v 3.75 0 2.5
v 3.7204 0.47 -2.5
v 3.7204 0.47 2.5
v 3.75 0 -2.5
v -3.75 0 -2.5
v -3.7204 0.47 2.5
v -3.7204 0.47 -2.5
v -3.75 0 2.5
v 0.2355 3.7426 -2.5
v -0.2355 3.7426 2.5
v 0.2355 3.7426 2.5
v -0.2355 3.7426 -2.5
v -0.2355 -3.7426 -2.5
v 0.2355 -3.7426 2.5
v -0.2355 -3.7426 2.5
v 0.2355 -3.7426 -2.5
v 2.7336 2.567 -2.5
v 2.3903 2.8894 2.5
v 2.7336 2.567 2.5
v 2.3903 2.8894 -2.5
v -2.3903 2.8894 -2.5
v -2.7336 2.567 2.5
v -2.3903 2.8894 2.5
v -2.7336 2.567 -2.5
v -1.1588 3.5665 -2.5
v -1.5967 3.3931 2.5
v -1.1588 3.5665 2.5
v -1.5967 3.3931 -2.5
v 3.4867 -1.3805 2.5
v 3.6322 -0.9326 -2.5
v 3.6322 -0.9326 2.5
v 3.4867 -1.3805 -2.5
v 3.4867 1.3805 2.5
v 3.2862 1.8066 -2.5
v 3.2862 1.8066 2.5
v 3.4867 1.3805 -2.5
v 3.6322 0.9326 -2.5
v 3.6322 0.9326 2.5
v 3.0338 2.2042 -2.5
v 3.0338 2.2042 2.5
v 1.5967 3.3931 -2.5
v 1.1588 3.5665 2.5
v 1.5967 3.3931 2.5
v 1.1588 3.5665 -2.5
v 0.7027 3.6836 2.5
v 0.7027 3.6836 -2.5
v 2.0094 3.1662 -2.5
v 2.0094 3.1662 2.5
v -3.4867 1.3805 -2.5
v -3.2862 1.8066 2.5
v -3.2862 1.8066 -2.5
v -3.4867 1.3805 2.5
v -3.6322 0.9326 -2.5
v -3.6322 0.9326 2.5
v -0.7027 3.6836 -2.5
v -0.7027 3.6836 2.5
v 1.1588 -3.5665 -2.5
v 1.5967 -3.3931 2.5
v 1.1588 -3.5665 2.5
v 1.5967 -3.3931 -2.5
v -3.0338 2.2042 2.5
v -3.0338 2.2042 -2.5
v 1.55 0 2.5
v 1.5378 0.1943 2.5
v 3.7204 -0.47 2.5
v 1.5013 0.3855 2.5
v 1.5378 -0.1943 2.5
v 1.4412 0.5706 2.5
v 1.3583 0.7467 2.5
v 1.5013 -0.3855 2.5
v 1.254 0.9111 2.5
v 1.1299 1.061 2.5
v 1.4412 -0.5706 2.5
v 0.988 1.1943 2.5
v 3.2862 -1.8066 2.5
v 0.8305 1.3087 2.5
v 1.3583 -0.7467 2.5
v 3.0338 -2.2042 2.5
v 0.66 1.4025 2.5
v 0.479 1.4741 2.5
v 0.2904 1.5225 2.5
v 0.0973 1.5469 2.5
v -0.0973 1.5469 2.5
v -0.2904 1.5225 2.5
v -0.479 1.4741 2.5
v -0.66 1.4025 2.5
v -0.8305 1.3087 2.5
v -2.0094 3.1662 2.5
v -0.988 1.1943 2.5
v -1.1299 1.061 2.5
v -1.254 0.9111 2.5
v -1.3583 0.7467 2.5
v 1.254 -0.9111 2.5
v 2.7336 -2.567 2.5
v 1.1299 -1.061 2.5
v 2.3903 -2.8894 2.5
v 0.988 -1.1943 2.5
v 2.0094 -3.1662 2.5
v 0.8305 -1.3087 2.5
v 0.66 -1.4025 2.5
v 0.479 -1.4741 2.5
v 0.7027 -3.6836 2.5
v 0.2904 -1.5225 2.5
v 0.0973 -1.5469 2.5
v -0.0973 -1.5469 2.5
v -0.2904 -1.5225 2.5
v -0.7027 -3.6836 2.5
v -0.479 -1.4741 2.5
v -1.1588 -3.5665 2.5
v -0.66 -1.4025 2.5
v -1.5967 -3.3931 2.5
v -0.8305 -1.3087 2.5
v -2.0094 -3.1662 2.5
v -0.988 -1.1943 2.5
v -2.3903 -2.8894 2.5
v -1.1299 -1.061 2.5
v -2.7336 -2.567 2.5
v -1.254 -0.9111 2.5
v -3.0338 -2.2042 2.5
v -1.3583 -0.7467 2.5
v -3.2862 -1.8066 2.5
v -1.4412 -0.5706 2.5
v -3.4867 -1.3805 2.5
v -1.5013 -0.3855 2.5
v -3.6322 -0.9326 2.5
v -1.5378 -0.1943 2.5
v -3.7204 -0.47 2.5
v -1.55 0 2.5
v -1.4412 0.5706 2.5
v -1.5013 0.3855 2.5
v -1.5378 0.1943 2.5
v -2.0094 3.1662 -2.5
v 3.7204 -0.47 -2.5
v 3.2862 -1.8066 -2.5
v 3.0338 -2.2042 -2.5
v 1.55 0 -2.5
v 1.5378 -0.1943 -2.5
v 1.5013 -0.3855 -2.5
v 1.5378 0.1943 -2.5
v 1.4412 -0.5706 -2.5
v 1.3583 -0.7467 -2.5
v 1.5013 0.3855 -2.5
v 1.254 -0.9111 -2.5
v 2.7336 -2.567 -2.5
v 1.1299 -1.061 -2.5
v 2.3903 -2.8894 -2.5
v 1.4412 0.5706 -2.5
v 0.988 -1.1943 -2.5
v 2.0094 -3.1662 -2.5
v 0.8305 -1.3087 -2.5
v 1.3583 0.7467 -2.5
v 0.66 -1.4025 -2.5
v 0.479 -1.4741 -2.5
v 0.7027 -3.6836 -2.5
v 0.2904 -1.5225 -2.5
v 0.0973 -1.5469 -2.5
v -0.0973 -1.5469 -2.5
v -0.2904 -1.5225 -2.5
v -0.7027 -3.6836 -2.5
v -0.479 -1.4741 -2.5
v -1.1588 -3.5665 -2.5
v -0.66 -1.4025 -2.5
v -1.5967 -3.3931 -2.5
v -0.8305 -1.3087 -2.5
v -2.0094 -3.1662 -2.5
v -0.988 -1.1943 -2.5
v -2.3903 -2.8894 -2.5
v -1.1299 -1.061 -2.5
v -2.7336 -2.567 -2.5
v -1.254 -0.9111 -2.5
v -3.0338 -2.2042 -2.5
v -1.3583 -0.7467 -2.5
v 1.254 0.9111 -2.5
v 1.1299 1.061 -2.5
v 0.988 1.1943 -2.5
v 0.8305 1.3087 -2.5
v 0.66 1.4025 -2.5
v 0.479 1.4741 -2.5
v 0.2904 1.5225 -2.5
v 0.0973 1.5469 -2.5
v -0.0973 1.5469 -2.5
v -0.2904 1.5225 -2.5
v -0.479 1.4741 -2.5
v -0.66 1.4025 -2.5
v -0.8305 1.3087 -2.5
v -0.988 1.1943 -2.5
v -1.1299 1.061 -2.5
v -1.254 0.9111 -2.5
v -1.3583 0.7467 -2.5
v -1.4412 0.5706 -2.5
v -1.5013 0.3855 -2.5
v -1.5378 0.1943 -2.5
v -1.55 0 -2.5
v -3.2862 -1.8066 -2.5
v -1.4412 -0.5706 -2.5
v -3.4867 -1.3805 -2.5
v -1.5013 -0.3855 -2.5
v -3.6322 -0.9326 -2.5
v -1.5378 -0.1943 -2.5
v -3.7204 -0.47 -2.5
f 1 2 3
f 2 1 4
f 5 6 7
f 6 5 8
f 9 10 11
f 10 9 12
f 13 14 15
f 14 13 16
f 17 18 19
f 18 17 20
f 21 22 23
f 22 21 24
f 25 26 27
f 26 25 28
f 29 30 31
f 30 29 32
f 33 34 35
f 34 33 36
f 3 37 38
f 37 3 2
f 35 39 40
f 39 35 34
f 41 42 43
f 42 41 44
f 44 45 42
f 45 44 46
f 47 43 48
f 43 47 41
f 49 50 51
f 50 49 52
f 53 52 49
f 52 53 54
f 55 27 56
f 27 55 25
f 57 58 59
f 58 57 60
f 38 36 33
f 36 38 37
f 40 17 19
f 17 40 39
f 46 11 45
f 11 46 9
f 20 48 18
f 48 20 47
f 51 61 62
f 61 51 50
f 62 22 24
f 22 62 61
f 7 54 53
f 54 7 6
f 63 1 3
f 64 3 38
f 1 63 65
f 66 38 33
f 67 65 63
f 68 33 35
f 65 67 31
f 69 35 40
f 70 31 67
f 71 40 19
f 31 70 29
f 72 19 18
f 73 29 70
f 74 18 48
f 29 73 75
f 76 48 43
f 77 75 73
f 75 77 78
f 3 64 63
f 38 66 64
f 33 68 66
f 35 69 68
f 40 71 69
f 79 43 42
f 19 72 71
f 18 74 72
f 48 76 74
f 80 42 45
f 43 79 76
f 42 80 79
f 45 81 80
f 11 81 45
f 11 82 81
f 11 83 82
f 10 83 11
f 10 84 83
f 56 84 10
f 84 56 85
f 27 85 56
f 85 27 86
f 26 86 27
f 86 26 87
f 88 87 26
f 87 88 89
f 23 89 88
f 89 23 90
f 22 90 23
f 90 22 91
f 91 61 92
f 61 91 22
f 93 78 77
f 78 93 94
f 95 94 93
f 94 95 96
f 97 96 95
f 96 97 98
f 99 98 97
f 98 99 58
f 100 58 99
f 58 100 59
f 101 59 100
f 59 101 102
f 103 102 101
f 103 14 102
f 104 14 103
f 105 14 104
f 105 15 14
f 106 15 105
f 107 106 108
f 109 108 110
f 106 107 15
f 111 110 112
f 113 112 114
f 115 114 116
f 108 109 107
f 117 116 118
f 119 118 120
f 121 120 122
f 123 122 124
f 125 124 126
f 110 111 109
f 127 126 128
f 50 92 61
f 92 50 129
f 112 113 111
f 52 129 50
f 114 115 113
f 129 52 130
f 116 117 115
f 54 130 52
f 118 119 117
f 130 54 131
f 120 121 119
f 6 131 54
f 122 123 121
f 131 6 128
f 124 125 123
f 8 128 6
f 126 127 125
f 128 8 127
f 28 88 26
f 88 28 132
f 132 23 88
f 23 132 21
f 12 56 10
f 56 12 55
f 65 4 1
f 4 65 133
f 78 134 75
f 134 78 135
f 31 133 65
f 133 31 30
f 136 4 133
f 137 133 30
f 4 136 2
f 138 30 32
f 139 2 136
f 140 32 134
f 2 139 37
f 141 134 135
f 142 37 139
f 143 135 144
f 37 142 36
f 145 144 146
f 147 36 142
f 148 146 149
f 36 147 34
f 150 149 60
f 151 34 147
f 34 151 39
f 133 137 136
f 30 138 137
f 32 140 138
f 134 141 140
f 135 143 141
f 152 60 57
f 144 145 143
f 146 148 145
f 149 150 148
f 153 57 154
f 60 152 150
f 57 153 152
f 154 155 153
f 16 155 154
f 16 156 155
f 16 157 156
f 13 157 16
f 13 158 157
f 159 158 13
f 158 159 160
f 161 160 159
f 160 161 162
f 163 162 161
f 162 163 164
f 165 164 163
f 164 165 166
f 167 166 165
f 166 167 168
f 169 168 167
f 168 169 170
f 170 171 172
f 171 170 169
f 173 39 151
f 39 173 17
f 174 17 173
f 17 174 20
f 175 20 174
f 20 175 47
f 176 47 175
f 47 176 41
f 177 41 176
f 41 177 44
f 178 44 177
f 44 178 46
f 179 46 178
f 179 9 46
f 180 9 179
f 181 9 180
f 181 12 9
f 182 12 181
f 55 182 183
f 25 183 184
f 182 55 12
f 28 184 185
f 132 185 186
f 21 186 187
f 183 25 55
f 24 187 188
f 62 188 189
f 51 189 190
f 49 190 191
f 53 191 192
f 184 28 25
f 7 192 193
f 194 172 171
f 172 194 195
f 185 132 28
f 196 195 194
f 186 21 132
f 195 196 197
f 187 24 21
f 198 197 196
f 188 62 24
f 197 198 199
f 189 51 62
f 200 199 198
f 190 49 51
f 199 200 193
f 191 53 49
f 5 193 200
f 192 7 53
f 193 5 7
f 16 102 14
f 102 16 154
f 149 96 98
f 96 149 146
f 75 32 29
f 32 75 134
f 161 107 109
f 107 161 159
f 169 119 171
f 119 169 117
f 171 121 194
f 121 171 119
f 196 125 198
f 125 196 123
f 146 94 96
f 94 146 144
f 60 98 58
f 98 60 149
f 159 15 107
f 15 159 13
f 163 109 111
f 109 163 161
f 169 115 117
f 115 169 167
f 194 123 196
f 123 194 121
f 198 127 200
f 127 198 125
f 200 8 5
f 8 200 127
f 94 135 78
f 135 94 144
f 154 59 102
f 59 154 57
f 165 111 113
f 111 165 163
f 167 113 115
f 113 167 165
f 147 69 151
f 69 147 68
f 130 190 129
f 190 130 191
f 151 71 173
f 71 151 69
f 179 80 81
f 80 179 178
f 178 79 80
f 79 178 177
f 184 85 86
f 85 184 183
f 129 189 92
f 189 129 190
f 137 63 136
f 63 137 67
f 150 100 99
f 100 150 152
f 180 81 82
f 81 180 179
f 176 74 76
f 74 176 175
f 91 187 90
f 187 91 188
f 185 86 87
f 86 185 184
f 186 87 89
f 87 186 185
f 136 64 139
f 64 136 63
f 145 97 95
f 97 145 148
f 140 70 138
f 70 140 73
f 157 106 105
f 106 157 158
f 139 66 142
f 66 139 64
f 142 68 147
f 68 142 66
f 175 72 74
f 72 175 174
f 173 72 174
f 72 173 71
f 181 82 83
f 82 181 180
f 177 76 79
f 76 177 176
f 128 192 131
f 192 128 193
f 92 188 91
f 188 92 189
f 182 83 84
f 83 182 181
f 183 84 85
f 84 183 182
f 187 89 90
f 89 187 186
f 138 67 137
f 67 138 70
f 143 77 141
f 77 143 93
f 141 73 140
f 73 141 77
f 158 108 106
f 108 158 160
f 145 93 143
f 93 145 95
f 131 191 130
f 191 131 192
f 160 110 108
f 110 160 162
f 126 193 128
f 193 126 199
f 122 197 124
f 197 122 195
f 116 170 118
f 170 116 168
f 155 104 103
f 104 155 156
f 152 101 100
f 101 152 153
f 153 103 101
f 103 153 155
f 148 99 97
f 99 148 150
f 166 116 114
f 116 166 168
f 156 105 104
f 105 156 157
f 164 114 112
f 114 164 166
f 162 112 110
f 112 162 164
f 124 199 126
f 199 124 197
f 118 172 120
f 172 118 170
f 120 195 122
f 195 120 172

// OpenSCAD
$fn = 50;


difference() {
	union() {
		translate(v = [0, 0, -2.5000000000]) {
			cylinder(h = 5, r = 3.7500000000);
		}
	}
	union() {
		translate(v = [0, 0, -100.0000000000]) {
			cylinder(h = 200, r = 1.5500000000);
		}
	}
}
